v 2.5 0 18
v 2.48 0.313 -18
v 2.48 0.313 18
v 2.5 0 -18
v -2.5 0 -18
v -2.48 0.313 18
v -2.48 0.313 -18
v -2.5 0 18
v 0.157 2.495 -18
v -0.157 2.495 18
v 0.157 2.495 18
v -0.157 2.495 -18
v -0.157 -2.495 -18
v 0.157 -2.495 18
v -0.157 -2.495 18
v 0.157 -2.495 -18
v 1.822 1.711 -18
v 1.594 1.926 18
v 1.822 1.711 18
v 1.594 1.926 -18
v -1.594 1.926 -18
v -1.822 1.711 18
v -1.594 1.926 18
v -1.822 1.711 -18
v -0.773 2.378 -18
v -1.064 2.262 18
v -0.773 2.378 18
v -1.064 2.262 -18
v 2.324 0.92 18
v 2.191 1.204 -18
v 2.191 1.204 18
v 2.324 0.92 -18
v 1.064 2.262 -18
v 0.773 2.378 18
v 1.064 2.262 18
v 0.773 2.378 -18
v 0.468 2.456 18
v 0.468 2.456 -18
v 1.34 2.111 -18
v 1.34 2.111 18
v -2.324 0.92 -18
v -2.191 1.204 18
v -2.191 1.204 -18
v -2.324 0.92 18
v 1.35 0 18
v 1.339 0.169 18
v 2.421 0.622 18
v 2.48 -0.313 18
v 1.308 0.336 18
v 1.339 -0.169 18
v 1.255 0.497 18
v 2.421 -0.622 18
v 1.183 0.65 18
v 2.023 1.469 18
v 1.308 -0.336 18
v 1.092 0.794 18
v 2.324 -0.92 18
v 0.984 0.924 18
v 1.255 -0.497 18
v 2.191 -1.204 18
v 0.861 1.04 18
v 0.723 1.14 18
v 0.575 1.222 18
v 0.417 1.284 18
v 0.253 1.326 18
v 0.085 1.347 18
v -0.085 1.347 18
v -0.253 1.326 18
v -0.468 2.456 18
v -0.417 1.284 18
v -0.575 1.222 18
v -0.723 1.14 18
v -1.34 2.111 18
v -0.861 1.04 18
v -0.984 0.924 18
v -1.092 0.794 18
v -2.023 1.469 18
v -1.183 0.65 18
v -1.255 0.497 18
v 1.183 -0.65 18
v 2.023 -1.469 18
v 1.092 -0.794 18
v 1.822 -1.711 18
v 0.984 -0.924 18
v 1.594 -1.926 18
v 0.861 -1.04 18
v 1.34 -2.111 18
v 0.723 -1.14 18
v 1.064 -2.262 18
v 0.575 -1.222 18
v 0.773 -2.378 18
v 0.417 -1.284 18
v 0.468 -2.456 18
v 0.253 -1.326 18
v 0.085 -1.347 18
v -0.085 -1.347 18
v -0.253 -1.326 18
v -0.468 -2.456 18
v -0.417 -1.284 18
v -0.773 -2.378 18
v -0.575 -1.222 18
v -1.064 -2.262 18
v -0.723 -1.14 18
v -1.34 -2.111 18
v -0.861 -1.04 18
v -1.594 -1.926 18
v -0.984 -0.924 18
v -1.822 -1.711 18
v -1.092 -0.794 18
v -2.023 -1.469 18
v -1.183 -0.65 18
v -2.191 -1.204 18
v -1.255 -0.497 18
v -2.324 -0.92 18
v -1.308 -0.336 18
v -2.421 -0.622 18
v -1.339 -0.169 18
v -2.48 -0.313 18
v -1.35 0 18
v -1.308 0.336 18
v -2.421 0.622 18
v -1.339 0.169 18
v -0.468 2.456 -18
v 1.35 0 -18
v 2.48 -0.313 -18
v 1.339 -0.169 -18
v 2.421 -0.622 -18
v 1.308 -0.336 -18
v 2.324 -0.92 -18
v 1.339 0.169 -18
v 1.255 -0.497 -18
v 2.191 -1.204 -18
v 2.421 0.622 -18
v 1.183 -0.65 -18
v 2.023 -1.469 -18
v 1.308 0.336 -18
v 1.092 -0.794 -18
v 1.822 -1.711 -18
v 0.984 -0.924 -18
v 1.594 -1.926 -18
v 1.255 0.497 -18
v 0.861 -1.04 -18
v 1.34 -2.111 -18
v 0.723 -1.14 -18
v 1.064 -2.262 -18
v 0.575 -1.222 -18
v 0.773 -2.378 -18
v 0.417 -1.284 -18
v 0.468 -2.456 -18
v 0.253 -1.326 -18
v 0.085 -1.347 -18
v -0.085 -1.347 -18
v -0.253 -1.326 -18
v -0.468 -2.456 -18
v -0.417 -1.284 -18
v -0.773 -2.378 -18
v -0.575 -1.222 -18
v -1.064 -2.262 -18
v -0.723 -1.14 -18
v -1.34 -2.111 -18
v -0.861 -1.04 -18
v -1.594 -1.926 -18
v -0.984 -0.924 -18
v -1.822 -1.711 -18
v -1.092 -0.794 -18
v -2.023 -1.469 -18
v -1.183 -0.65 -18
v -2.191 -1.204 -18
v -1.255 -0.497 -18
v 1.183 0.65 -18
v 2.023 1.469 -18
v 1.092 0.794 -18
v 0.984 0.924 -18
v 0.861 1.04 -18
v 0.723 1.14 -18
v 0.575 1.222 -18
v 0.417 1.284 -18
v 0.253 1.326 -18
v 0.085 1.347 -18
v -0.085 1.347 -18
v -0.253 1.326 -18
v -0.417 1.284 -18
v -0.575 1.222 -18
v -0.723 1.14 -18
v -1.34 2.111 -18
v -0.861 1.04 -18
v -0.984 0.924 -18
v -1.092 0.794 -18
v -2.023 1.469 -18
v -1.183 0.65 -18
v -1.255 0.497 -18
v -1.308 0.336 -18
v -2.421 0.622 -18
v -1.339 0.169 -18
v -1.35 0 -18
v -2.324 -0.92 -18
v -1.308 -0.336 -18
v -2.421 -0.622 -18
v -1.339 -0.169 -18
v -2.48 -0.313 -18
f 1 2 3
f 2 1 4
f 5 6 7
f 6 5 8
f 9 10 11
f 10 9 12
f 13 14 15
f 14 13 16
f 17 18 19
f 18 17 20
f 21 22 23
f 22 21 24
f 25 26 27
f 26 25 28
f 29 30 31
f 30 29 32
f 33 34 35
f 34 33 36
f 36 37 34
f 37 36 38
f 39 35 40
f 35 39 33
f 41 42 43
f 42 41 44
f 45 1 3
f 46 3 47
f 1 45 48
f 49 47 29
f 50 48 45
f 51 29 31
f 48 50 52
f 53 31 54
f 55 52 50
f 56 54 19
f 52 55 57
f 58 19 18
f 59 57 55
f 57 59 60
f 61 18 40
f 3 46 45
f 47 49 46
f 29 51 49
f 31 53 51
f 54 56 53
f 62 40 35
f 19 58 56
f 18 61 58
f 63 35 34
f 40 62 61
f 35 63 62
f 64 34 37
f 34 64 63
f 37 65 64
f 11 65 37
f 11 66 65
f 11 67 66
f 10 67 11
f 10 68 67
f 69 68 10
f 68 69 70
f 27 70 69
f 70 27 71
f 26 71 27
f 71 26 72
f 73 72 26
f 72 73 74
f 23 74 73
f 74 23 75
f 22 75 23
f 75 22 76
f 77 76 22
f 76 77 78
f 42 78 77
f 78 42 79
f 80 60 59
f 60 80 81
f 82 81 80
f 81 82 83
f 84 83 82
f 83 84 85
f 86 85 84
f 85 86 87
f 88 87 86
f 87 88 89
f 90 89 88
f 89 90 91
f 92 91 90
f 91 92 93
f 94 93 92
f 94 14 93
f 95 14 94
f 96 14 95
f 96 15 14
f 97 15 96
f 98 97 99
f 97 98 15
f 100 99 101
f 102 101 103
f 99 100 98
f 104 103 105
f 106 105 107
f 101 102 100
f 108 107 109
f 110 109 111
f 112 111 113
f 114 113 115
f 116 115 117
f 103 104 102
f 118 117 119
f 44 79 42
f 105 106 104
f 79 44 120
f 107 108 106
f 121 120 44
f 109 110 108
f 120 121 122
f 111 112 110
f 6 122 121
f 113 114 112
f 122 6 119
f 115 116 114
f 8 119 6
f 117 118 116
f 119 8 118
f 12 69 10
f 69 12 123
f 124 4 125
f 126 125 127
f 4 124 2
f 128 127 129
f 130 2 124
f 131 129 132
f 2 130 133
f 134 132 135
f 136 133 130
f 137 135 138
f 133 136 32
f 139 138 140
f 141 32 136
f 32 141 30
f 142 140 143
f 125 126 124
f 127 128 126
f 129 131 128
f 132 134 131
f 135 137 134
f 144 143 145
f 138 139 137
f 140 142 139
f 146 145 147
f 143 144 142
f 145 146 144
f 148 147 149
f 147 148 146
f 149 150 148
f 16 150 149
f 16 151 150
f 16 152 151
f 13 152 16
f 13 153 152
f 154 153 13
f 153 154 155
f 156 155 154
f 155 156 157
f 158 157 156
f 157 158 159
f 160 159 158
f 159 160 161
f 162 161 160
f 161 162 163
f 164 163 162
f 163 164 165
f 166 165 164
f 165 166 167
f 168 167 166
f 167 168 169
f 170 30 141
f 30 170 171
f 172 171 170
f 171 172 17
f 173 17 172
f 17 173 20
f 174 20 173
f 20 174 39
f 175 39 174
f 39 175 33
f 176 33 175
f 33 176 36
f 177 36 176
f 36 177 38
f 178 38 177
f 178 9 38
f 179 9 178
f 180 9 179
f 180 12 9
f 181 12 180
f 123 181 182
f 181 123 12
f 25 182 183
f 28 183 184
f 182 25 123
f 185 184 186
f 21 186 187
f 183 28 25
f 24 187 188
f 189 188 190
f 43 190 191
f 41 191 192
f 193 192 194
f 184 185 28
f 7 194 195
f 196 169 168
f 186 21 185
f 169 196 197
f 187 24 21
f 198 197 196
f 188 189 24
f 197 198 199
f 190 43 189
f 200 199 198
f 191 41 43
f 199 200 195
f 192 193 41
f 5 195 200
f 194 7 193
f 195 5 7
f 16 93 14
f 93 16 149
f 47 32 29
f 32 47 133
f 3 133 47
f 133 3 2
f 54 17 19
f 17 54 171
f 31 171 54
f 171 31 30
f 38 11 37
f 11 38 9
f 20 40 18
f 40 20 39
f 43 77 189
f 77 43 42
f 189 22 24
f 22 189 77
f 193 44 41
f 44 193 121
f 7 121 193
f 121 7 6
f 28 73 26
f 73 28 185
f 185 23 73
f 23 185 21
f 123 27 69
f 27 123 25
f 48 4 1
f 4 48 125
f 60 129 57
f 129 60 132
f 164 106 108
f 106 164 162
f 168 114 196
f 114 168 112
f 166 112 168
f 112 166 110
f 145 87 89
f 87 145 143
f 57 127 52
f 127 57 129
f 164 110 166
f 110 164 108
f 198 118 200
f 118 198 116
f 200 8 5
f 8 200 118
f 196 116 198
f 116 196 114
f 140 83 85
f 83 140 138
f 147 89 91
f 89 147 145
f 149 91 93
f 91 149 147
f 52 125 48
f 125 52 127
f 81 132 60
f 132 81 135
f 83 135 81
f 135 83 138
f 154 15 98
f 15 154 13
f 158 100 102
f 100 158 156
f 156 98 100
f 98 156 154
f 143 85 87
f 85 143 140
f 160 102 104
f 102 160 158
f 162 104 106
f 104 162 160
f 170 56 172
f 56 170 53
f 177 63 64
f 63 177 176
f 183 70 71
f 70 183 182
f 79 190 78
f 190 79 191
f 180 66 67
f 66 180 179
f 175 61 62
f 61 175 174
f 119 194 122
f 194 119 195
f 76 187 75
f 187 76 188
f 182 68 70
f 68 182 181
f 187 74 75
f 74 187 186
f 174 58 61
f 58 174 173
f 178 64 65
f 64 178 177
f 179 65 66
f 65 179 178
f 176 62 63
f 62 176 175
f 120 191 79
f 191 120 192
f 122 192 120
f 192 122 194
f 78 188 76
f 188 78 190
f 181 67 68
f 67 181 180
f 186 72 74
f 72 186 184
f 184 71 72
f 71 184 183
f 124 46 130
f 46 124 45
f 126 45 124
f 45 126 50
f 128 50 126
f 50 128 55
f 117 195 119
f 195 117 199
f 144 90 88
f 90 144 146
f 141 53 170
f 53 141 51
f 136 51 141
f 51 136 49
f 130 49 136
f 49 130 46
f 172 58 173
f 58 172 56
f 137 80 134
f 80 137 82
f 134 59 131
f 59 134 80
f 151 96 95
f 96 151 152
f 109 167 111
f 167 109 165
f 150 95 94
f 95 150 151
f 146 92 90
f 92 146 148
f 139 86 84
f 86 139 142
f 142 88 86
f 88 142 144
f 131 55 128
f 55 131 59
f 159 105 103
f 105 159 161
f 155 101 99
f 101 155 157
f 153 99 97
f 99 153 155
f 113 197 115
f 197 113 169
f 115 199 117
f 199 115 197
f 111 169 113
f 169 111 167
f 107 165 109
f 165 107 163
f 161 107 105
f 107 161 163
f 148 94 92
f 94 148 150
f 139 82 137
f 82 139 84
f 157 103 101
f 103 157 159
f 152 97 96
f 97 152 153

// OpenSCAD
$fn = 50;


difference() {
	union() {
		translate(v = [0, 0, -18.0000000000]) {
			cylinder(h = 36, r = 2.5000000000);
		}
	}
	union() {
		translate(v = [0, 0, -100.0000000000]) {
			cylinder(h = 200, r = 1.3500000000);
		}
	}
}
